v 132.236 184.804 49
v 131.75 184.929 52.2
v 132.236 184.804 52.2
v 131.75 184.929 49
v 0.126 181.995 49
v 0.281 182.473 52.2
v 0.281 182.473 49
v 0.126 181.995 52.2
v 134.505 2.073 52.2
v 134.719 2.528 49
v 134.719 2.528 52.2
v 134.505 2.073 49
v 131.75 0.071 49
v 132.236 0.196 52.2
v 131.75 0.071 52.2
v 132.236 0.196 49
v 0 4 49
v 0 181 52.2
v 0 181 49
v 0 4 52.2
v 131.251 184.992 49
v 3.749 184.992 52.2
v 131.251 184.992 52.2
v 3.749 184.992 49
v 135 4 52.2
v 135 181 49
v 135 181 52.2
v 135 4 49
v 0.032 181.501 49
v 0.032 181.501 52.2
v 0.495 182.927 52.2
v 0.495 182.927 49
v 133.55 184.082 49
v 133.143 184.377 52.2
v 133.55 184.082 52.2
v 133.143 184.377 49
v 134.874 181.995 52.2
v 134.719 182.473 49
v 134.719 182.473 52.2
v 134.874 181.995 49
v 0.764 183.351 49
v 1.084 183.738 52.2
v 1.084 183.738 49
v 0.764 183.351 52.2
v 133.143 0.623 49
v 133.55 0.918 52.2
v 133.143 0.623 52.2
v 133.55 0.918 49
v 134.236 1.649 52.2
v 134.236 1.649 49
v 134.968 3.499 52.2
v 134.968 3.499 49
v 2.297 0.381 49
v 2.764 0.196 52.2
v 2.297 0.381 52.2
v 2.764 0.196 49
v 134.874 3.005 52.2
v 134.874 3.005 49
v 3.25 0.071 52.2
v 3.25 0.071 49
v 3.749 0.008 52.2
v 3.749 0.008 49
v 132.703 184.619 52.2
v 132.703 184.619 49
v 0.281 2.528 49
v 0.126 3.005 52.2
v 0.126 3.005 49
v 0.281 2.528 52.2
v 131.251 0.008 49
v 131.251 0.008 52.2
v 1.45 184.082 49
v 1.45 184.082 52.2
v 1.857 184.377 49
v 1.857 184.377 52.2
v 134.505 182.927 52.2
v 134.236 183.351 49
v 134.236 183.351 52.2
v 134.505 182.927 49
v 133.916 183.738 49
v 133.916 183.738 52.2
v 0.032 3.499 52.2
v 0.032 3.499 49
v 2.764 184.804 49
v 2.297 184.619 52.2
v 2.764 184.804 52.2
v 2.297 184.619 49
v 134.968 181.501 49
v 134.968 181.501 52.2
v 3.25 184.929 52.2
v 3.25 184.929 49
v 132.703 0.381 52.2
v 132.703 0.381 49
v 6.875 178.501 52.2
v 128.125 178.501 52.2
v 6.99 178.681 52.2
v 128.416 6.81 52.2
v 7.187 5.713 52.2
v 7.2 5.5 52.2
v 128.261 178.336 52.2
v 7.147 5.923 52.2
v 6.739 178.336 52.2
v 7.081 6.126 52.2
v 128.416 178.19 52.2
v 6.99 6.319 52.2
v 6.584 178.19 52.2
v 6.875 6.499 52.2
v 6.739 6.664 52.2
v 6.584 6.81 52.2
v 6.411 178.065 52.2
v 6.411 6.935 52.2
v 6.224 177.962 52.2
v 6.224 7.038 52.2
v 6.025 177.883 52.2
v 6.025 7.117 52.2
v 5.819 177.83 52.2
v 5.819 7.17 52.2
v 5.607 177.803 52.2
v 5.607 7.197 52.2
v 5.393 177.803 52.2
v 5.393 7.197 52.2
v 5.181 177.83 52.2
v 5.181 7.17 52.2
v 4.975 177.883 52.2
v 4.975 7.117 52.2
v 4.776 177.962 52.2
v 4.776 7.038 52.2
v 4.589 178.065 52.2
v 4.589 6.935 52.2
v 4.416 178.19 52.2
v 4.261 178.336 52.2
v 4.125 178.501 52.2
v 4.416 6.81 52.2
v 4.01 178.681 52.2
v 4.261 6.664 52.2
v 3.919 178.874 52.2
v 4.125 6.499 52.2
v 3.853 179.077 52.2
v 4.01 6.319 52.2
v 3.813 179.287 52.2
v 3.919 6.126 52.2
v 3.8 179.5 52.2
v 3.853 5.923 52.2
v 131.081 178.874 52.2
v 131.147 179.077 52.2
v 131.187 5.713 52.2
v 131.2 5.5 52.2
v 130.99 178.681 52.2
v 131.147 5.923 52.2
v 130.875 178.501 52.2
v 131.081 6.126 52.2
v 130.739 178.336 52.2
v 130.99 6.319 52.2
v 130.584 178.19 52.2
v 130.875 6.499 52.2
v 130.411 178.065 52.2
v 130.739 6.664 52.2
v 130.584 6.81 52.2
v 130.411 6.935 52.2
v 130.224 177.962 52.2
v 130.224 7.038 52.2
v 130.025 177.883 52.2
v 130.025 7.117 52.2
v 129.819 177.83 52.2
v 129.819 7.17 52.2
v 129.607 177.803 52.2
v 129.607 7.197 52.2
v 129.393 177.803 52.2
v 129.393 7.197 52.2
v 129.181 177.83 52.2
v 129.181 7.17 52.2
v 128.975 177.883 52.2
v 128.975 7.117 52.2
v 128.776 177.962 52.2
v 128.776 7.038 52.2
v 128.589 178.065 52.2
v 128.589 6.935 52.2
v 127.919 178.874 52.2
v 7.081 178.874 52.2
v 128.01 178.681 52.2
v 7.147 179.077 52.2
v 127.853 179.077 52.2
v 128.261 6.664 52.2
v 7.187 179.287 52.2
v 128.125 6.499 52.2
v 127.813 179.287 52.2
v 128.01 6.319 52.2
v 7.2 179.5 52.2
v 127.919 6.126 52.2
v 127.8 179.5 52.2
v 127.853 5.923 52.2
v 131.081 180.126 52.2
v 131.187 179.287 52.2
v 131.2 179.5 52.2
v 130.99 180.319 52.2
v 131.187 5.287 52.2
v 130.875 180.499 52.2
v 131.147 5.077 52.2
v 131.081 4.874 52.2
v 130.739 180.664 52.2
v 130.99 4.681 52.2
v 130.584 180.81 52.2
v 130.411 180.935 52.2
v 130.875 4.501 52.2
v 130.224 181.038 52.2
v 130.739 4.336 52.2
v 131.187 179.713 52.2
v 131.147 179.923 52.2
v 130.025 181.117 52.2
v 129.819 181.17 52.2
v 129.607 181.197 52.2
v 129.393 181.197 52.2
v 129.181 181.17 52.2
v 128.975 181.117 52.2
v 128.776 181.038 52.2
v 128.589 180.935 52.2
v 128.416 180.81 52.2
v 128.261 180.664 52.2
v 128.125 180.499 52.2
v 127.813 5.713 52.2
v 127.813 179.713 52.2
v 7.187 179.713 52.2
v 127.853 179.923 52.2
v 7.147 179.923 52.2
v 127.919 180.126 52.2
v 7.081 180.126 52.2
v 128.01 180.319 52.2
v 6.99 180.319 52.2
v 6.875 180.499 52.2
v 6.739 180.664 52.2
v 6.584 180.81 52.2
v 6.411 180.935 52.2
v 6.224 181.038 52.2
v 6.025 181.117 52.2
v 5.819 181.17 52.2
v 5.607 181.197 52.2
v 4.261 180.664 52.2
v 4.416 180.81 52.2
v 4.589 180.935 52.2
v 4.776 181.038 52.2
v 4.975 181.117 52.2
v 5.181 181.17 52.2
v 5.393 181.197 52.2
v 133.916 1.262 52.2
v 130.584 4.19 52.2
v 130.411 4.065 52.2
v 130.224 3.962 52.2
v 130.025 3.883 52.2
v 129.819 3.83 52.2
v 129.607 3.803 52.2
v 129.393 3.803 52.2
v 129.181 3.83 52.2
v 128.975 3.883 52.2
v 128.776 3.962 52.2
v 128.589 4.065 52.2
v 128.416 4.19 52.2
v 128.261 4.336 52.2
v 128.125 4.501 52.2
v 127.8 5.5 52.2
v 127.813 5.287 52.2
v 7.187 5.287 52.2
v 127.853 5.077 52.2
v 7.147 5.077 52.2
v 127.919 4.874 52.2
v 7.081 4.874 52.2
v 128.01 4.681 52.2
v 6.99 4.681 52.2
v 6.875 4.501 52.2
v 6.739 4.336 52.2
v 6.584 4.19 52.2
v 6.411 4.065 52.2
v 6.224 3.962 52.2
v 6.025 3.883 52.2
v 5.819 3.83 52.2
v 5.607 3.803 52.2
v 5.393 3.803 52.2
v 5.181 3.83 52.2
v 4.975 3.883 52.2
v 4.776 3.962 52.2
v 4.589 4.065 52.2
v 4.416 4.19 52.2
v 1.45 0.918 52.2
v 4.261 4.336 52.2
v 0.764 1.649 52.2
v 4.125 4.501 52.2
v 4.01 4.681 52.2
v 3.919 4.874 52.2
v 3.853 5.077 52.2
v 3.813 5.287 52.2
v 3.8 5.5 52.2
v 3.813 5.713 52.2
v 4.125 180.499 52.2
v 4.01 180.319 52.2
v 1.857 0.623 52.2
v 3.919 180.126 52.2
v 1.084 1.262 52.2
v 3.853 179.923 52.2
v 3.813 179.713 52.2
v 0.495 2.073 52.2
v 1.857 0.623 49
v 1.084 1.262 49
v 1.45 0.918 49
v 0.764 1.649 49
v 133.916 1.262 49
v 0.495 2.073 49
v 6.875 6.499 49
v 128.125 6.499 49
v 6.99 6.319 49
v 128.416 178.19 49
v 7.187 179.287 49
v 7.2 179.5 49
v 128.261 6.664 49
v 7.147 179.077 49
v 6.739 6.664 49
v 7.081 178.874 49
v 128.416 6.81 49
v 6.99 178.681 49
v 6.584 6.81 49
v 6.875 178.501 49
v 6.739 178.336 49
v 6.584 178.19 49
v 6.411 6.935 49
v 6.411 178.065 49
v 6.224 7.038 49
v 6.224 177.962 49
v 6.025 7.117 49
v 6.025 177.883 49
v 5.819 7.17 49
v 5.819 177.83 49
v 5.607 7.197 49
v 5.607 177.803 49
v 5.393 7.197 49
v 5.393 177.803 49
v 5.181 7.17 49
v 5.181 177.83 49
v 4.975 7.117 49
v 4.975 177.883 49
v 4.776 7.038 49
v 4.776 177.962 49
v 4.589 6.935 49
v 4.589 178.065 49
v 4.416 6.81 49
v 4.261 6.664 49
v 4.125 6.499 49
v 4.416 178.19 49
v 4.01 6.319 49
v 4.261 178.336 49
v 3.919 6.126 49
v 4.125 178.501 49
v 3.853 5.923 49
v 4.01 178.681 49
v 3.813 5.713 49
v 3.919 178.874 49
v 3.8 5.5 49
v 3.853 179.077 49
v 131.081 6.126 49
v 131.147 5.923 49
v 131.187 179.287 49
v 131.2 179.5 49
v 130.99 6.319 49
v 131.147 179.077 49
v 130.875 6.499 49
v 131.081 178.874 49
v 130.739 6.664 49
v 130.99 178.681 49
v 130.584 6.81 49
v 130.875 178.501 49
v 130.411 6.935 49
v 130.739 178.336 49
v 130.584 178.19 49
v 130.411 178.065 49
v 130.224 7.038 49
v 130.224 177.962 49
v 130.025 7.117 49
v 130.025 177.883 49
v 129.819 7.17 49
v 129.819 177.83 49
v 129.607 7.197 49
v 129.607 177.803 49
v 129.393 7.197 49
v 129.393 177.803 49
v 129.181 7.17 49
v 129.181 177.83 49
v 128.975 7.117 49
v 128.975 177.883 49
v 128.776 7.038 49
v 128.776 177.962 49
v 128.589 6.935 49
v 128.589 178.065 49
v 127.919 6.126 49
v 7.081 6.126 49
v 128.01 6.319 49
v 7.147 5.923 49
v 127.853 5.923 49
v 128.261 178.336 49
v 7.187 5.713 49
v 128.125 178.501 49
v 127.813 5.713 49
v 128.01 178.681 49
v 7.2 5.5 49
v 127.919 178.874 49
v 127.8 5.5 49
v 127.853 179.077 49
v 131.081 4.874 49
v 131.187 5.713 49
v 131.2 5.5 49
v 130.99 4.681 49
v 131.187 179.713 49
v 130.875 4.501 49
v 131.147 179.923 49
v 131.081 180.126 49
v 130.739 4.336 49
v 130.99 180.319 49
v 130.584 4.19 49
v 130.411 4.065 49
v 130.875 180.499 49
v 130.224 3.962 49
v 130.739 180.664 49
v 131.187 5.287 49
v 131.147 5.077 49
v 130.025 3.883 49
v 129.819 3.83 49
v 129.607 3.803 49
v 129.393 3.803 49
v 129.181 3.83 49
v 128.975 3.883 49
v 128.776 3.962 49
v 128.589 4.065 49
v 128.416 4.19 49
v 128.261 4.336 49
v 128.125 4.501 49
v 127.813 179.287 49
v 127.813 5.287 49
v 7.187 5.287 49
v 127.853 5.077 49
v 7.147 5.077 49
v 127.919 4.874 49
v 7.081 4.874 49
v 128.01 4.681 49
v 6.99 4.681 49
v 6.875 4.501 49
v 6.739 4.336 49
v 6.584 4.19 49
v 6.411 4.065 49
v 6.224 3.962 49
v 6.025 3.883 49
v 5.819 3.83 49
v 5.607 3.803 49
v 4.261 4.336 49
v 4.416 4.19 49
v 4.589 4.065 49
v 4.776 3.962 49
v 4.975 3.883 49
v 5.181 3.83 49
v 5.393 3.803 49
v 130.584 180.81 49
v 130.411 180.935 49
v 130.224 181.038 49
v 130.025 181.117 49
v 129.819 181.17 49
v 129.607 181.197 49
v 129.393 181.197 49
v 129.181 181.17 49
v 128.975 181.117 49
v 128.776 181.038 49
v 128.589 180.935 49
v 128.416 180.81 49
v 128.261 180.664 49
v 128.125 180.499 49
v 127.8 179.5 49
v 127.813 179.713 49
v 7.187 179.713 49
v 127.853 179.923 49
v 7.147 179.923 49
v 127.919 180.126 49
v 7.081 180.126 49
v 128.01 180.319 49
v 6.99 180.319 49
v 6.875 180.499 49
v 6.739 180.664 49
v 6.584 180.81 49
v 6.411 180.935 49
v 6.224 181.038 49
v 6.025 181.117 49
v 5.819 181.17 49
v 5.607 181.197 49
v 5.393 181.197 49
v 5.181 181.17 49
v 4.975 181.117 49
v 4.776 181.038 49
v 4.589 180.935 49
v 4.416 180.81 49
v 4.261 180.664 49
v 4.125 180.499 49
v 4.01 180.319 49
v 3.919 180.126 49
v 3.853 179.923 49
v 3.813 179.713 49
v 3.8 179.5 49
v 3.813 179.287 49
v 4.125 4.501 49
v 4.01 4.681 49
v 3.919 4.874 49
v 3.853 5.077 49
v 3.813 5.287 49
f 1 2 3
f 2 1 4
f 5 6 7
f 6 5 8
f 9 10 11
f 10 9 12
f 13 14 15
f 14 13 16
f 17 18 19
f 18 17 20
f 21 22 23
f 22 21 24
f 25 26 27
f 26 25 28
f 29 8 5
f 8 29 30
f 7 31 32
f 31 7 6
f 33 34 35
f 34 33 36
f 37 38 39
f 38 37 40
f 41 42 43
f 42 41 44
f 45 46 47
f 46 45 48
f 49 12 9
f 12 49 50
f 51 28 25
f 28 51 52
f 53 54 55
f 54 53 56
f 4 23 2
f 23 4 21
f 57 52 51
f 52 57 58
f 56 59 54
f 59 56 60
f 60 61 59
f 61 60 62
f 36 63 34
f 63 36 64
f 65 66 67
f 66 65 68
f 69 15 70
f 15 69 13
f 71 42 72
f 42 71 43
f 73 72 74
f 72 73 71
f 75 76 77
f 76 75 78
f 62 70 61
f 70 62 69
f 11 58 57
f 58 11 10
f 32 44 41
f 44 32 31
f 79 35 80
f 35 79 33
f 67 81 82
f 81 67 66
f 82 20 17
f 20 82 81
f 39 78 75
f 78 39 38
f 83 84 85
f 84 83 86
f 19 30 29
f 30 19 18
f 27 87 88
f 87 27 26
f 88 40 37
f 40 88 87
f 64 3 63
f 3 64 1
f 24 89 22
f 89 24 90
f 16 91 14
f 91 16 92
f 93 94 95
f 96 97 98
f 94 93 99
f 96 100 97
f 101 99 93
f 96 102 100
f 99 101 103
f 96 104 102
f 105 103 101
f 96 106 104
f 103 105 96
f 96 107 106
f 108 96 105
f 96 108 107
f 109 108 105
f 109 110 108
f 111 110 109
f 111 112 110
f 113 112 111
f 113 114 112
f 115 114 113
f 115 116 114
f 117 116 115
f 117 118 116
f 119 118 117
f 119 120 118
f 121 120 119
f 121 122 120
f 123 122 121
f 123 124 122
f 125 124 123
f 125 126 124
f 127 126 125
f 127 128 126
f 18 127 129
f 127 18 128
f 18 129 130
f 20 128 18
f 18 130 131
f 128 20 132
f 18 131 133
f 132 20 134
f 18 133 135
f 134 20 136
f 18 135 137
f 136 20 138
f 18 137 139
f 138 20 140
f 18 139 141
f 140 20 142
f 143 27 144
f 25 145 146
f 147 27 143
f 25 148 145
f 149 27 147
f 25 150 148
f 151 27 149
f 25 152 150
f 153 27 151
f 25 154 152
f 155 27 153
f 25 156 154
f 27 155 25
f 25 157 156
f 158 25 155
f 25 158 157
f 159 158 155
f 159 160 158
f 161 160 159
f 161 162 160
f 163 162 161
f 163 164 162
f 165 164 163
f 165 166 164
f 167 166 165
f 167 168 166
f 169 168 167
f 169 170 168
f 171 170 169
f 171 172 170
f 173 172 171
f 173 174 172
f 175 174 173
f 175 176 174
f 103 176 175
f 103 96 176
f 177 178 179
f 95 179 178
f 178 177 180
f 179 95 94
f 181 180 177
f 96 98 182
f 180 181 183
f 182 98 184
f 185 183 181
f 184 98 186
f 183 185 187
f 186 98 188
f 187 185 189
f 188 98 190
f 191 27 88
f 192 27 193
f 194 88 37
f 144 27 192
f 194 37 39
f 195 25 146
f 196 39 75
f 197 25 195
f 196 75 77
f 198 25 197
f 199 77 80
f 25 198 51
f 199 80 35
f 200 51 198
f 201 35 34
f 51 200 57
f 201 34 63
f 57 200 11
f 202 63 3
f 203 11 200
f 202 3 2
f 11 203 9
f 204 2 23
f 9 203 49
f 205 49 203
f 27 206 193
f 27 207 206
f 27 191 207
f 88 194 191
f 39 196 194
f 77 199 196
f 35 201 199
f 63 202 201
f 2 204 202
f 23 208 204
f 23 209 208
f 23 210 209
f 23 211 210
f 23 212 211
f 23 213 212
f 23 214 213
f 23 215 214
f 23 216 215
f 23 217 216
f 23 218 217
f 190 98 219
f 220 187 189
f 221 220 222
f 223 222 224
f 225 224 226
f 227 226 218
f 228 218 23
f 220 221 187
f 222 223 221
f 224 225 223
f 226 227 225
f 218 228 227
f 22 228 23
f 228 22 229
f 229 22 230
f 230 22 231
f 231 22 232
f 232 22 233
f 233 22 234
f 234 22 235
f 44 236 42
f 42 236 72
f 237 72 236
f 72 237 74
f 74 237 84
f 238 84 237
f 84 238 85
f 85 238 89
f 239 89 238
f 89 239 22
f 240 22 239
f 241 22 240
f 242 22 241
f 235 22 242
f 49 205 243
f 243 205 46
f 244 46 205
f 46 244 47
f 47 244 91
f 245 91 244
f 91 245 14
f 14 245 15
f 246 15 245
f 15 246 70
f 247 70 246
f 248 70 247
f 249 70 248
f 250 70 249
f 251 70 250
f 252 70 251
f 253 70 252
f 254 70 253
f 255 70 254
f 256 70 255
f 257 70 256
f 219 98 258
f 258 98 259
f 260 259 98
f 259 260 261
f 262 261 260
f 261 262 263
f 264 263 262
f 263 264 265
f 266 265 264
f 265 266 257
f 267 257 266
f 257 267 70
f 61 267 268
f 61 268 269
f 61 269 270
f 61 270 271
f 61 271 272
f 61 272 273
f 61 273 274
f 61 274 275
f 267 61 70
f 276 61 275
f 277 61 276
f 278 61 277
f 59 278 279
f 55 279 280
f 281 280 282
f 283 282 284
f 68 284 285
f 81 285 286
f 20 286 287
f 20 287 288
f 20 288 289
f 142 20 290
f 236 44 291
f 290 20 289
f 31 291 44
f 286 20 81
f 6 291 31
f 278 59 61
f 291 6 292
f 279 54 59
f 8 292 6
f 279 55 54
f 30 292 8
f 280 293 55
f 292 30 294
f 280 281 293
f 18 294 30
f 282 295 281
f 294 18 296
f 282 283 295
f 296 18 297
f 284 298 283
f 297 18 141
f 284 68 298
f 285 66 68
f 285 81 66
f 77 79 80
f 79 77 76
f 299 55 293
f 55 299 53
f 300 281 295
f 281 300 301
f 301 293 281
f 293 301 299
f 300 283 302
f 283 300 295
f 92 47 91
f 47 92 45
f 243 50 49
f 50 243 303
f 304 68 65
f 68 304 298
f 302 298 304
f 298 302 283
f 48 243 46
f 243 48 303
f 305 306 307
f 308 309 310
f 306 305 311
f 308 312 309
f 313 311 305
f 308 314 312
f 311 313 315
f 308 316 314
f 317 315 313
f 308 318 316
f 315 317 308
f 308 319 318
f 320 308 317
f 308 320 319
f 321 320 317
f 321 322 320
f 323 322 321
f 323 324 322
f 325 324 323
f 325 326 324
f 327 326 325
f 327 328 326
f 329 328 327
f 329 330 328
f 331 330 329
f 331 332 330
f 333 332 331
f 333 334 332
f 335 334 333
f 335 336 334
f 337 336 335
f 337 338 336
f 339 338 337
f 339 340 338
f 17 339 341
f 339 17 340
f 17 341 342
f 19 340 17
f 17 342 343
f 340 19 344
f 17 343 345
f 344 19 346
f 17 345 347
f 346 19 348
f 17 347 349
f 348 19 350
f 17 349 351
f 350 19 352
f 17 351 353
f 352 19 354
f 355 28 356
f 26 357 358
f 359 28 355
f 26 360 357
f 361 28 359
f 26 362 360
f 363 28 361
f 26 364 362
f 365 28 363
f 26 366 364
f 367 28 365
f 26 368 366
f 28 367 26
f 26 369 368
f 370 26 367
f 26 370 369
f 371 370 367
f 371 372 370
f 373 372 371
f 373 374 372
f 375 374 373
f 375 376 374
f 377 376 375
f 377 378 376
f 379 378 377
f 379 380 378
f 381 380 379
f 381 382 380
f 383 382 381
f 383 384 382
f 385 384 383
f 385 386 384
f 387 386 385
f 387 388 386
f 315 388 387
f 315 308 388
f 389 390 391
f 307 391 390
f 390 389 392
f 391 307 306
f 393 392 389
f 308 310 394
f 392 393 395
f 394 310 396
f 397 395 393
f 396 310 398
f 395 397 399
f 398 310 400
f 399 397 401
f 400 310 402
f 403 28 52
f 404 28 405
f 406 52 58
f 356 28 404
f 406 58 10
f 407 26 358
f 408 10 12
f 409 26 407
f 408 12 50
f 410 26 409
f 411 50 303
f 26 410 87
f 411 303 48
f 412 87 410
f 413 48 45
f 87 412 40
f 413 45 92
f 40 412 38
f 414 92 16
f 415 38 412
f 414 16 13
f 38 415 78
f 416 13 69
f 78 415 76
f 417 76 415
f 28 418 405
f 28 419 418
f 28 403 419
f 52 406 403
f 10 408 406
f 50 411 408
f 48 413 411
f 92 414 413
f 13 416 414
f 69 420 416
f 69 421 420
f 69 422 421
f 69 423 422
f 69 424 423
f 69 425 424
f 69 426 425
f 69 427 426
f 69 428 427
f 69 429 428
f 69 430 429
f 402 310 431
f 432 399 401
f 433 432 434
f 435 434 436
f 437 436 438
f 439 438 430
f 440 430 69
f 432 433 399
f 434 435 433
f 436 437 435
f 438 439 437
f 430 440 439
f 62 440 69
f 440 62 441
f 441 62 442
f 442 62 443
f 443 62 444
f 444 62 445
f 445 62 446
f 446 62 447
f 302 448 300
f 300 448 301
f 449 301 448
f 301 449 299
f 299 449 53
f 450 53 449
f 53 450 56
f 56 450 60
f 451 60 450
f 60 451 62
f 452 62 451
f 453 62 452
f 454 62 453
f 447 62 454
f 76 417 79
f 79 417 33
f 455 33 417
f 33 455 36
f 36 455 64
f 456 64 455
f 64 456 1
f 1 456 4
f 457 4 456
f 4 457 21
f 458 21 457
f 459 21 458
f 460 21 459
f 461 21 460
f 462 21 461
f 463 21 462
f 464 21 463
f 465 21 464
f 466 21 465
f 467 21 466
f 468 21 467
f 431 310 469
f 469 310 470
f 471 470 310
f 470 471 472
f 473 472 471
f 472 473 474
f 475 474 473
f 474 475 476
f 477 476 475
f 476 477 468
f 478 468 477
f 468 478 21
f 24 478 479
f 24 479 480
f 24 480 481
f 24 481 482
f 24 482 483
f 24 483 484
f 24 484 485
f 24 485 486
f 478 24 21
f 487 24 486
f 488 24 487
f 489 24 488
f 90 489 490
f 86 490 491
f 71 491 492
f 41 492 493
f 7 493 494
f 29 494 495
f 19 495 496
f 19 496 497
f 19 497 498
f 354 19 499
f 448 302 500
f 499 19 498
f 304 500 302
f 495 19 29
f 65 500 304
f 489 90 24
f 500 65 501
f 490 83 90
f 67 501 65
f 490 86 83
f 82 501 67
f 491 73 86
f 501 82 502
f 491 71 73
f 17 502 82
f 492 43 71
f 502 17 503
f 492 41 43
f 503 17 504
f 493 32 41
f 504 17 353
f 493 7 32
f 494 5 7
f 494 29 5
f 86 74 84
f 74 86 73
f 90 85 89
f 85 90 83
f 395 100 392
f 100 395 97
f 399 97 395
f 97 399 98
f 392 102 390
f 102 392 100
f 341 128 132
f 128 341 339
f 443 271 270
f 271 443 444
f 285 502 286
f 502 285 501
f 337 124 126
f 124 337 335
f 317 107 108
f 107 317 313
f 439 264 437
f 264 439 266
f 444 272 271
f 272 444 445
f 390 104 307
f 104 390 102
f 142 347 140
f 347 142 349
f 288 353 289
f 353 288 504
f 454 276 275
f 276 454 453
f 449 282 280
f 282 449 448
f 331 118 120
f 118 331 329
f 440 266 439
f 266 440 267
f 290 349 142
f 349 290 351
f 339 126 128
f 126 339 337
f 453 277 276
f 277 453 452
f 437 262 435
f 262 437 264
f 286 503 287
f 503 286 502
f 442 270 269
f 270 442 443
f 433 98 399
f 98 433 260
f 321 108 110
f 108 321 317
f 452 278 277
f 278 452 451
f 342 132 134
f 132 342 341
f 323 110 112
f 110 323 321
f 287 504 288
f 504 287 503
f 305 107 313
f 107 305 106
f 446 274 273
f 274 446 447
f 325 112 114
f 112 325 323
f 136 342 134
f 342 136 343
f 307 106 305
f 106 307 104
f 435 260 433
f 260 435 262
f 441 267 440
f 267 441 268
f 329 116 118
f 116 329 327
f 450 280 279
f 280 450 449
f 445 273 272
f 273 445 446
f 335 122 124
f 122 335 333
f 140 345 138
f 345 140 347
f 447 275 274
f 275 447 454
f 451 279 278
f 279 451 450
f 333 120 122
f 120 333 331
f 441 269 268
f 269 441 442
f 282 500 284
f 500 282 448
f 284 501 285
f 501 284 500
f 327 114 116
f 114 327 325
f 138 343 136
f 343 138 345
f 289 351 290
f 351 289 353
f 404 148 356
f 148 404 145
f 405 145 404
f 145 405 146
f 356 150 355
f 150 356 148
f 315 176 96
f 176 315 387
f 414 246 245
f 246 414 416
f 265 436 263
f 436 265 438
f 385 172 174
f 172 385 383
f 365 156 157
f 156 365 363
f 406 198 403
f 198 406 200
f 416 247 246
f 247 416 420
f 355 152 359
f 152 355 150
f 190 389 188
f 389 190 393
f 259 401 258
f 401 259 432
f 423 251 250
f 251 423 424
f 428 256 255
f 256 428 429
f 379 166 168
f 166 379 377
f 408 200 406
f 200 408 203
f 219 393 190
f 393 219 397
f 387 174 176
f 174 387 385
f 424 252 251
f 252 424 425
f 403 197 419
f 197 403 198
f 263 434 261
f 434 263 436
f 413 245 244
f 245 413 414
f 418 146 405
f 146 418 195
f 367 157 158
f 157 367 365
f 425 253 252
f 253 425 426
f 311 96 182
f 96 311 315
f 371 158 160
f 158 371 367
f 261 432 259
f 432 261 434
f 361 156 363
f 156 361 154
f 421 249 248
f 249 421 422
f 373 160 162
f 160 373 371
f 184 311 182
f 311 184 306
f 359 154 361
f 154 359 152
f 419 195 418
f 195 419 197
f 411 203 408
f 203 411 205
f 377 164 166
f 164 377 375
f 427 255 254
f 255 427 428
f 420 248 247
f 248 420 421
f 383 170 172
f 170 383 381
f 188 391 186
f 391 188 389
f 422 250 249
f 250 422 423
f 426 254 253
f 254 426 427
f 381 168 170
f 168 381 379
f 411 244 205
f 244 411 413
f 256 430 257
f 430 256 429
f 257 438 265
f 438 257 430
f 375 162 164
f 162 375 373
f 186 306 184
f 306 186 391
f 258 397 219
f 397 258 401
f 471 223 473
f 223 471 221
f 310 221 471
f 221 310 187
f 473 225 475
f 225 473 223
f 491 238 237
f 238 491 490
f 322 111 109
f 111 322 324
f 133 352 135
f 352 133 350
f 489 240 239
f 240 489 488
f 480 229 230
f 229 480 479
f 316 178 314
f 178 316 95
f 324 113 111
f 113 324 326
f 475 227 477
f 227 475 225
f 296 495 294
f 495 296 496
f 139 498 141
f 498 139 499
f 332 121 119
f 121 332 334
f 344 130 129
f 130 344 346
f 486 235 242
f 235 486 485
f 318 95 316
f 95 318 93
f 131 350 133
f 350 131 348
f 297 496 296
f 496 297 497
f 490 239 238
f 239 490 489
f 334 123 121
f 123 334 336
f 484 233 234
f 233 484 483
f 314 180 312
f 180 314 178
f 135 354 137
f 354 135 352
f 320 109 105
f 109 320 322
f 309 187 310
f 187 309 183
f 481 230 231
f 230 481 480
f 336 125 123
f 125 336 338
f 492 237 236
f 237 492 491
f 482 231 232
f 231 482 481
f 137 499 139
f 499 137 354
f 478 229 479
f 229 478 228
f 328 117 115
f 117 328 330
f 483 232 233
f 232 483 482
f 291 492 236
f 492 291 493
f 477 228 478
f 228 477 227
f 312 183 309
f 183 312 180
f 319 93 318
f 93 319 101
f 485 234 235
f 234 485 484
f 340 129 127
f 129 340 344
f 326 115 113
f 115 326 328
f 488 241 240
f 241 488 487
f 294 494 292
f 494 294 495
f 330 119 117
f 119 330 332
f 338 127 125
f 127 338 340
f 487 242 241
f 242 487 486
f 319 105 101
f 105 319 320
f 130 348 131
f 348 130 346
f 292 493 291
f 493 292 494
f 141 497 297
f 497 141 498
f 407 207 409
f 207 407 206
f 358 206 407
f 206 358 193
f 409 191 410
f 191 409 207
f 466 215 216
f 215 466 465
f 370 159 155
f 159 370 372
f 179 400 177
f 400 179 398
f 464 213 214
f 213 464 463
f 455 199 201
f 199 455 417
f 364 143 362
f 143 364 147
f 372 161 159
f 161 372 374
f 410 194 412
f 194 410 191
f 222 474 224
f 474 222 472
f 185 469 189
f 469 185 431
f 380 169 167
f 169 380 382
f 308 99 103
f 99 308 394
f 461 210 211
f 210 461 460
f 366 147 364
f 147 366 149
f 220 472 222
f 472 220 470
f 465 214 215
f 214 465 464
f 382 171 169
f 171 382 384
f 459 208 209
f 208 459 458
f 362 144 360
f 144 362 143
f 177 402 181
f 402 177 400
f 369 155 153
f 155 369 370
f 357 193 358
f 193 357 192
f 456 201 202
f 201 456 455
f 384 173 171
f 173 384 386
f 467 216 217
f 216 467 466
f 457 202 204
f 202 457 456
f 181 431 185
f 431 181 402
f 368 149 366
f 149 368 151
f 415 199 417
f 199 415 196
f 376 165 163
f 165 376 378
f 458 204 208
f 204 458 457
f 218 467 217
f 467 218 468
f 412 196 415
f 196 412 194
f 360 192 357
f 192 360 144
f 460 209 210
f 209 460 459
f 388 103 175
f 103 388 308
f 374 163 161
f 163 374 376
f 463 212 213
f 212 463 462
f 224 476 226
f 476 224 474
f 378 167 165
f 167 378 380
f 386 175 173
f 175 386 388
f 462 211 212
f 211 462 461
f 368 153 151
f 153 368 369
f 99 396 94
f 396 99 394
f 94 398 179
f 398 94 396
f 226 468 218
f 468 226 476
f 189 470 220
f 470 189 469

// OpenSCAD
// Note: Modified to take McMaster-Carr 3mm heat set inserts for board and top

//include<./duetwifi-r2x.scad>;

//functions
function lookup(v,var,lar,i=0) = (var[ i ]==v) ? lar[ i ] : ( i < len ( var ) ? lookup( v, var, lar, i + 1 ) : -1);

//user selection

assembled = false;//set to true for assembled item - printbox must be selected
hardware = false;//set tp true to show fan,grill and boards
nuttrap = true; //set to false for round bolt head on grill
inside = true;//Set to true for fan mounted inside box or false for outside of the box.
withfan = true;//set to false for no fan and extra vents


//user settings
fan_width = 40;			    //input fan outer dimensions
fan_depth = 11;             //input fan depth
fan_blades=5;               //input the number of fan blades

evilSlop=0.5; // This should not be needed, but my halves don't fit quite right if I use
              // the specified distance between mounting holes, so this tries to fix.

goofUp = 1; // This is here just to let me deal with having goofed the size of this thing.
            // Should be zero.

//default settings
base=2.4;                     //enclosure base thickness
wall=2.8;                   //enclosure wall thickness
airgap=10;                  //space between boards
bsuppwid=10;                //board support width
bsize=[100,123,26];         //board size
bmount=[92,115-evilSlop];            //board mounting holes
boffset=[25,wall+15]; //board offset (X,Y)
erad=4;                     //enclosure corner radius
ency=175;            //enclosure length(y)
encx=135;                   //enclosure width(x)
M4_clear=2.2;               //m4 clearance
M3_clear=1.7;               //m3 clearance bolt
M3_head_dia=3.4;            //head diameter
M3_head_ht=2.5;             //m3 head height
M3_nut_trap=3.4;            // m3 nut trap
grill_depth=4;              //fan grill depth
grill_space=10;            //space between grill rings
rings_wid=1.05;             //fan grill rods and rings width
clear=2;                    //extra clearance
tol=0.1;                    //small tolerance
$fn=50;

//calculations
fan_mount_dist = lookup(fan_width, [40,50,60,80], [32,40,50,70]);   //fan mounting hole distance
fan_dist = (withfan == true) ? fan_depth : 5;                       //default space if fan outside
    
fan_pos=[encx/2-bsuppwid,ency/2,-0.1];                              //fan position
fan_rad = fan_width/2-2;		                                    //radius of blades
rings = lookup(fan_width, [40,50,60,80], [4,5,6,8]);                //number of grill rings dependant on fan size

if (1) translate([0,0,2]) difference() {
   hull() {
      translate([0+erad,0+erad,47]) cylinder(r=erad,h=3.2);
      translate([encx-erad,0+erad,47]) cylinder(r=erad,h=3.2);
      translate([0+erad,ency-erad+10,47]) cylinder(r=erad,h=3.2);
      translate([encx-erad,ency-erad+10,47]) cylinder(r=erad,h=3.2);
   }

   if (0) hull() {
      translate([20,20,46]) cylinder(r=erad,h=6);
      translate([encx-20,20,46]) cylinder(r=erad,h=6);
      translate([20,ency+10-20,46]) cylinder(r=erad,h=6);
      translate([encx-20,ency+10-20,46]) cylinder(r=erad,h=6);
   }

   translate([0+5.5,0+5.5,45]) cylinder(r=1.7,h=10);
   translate([encx-5.5,0+5.5,45]) cylinder(r=1.7,h=10);
   translate([0+5.5,ency-5.5+10,45]) cylinder(r=1.7,h=10);
   translate([encx-5.5,ency-5.5+10,45]) cylinder(r=1.7,h=10);
}
